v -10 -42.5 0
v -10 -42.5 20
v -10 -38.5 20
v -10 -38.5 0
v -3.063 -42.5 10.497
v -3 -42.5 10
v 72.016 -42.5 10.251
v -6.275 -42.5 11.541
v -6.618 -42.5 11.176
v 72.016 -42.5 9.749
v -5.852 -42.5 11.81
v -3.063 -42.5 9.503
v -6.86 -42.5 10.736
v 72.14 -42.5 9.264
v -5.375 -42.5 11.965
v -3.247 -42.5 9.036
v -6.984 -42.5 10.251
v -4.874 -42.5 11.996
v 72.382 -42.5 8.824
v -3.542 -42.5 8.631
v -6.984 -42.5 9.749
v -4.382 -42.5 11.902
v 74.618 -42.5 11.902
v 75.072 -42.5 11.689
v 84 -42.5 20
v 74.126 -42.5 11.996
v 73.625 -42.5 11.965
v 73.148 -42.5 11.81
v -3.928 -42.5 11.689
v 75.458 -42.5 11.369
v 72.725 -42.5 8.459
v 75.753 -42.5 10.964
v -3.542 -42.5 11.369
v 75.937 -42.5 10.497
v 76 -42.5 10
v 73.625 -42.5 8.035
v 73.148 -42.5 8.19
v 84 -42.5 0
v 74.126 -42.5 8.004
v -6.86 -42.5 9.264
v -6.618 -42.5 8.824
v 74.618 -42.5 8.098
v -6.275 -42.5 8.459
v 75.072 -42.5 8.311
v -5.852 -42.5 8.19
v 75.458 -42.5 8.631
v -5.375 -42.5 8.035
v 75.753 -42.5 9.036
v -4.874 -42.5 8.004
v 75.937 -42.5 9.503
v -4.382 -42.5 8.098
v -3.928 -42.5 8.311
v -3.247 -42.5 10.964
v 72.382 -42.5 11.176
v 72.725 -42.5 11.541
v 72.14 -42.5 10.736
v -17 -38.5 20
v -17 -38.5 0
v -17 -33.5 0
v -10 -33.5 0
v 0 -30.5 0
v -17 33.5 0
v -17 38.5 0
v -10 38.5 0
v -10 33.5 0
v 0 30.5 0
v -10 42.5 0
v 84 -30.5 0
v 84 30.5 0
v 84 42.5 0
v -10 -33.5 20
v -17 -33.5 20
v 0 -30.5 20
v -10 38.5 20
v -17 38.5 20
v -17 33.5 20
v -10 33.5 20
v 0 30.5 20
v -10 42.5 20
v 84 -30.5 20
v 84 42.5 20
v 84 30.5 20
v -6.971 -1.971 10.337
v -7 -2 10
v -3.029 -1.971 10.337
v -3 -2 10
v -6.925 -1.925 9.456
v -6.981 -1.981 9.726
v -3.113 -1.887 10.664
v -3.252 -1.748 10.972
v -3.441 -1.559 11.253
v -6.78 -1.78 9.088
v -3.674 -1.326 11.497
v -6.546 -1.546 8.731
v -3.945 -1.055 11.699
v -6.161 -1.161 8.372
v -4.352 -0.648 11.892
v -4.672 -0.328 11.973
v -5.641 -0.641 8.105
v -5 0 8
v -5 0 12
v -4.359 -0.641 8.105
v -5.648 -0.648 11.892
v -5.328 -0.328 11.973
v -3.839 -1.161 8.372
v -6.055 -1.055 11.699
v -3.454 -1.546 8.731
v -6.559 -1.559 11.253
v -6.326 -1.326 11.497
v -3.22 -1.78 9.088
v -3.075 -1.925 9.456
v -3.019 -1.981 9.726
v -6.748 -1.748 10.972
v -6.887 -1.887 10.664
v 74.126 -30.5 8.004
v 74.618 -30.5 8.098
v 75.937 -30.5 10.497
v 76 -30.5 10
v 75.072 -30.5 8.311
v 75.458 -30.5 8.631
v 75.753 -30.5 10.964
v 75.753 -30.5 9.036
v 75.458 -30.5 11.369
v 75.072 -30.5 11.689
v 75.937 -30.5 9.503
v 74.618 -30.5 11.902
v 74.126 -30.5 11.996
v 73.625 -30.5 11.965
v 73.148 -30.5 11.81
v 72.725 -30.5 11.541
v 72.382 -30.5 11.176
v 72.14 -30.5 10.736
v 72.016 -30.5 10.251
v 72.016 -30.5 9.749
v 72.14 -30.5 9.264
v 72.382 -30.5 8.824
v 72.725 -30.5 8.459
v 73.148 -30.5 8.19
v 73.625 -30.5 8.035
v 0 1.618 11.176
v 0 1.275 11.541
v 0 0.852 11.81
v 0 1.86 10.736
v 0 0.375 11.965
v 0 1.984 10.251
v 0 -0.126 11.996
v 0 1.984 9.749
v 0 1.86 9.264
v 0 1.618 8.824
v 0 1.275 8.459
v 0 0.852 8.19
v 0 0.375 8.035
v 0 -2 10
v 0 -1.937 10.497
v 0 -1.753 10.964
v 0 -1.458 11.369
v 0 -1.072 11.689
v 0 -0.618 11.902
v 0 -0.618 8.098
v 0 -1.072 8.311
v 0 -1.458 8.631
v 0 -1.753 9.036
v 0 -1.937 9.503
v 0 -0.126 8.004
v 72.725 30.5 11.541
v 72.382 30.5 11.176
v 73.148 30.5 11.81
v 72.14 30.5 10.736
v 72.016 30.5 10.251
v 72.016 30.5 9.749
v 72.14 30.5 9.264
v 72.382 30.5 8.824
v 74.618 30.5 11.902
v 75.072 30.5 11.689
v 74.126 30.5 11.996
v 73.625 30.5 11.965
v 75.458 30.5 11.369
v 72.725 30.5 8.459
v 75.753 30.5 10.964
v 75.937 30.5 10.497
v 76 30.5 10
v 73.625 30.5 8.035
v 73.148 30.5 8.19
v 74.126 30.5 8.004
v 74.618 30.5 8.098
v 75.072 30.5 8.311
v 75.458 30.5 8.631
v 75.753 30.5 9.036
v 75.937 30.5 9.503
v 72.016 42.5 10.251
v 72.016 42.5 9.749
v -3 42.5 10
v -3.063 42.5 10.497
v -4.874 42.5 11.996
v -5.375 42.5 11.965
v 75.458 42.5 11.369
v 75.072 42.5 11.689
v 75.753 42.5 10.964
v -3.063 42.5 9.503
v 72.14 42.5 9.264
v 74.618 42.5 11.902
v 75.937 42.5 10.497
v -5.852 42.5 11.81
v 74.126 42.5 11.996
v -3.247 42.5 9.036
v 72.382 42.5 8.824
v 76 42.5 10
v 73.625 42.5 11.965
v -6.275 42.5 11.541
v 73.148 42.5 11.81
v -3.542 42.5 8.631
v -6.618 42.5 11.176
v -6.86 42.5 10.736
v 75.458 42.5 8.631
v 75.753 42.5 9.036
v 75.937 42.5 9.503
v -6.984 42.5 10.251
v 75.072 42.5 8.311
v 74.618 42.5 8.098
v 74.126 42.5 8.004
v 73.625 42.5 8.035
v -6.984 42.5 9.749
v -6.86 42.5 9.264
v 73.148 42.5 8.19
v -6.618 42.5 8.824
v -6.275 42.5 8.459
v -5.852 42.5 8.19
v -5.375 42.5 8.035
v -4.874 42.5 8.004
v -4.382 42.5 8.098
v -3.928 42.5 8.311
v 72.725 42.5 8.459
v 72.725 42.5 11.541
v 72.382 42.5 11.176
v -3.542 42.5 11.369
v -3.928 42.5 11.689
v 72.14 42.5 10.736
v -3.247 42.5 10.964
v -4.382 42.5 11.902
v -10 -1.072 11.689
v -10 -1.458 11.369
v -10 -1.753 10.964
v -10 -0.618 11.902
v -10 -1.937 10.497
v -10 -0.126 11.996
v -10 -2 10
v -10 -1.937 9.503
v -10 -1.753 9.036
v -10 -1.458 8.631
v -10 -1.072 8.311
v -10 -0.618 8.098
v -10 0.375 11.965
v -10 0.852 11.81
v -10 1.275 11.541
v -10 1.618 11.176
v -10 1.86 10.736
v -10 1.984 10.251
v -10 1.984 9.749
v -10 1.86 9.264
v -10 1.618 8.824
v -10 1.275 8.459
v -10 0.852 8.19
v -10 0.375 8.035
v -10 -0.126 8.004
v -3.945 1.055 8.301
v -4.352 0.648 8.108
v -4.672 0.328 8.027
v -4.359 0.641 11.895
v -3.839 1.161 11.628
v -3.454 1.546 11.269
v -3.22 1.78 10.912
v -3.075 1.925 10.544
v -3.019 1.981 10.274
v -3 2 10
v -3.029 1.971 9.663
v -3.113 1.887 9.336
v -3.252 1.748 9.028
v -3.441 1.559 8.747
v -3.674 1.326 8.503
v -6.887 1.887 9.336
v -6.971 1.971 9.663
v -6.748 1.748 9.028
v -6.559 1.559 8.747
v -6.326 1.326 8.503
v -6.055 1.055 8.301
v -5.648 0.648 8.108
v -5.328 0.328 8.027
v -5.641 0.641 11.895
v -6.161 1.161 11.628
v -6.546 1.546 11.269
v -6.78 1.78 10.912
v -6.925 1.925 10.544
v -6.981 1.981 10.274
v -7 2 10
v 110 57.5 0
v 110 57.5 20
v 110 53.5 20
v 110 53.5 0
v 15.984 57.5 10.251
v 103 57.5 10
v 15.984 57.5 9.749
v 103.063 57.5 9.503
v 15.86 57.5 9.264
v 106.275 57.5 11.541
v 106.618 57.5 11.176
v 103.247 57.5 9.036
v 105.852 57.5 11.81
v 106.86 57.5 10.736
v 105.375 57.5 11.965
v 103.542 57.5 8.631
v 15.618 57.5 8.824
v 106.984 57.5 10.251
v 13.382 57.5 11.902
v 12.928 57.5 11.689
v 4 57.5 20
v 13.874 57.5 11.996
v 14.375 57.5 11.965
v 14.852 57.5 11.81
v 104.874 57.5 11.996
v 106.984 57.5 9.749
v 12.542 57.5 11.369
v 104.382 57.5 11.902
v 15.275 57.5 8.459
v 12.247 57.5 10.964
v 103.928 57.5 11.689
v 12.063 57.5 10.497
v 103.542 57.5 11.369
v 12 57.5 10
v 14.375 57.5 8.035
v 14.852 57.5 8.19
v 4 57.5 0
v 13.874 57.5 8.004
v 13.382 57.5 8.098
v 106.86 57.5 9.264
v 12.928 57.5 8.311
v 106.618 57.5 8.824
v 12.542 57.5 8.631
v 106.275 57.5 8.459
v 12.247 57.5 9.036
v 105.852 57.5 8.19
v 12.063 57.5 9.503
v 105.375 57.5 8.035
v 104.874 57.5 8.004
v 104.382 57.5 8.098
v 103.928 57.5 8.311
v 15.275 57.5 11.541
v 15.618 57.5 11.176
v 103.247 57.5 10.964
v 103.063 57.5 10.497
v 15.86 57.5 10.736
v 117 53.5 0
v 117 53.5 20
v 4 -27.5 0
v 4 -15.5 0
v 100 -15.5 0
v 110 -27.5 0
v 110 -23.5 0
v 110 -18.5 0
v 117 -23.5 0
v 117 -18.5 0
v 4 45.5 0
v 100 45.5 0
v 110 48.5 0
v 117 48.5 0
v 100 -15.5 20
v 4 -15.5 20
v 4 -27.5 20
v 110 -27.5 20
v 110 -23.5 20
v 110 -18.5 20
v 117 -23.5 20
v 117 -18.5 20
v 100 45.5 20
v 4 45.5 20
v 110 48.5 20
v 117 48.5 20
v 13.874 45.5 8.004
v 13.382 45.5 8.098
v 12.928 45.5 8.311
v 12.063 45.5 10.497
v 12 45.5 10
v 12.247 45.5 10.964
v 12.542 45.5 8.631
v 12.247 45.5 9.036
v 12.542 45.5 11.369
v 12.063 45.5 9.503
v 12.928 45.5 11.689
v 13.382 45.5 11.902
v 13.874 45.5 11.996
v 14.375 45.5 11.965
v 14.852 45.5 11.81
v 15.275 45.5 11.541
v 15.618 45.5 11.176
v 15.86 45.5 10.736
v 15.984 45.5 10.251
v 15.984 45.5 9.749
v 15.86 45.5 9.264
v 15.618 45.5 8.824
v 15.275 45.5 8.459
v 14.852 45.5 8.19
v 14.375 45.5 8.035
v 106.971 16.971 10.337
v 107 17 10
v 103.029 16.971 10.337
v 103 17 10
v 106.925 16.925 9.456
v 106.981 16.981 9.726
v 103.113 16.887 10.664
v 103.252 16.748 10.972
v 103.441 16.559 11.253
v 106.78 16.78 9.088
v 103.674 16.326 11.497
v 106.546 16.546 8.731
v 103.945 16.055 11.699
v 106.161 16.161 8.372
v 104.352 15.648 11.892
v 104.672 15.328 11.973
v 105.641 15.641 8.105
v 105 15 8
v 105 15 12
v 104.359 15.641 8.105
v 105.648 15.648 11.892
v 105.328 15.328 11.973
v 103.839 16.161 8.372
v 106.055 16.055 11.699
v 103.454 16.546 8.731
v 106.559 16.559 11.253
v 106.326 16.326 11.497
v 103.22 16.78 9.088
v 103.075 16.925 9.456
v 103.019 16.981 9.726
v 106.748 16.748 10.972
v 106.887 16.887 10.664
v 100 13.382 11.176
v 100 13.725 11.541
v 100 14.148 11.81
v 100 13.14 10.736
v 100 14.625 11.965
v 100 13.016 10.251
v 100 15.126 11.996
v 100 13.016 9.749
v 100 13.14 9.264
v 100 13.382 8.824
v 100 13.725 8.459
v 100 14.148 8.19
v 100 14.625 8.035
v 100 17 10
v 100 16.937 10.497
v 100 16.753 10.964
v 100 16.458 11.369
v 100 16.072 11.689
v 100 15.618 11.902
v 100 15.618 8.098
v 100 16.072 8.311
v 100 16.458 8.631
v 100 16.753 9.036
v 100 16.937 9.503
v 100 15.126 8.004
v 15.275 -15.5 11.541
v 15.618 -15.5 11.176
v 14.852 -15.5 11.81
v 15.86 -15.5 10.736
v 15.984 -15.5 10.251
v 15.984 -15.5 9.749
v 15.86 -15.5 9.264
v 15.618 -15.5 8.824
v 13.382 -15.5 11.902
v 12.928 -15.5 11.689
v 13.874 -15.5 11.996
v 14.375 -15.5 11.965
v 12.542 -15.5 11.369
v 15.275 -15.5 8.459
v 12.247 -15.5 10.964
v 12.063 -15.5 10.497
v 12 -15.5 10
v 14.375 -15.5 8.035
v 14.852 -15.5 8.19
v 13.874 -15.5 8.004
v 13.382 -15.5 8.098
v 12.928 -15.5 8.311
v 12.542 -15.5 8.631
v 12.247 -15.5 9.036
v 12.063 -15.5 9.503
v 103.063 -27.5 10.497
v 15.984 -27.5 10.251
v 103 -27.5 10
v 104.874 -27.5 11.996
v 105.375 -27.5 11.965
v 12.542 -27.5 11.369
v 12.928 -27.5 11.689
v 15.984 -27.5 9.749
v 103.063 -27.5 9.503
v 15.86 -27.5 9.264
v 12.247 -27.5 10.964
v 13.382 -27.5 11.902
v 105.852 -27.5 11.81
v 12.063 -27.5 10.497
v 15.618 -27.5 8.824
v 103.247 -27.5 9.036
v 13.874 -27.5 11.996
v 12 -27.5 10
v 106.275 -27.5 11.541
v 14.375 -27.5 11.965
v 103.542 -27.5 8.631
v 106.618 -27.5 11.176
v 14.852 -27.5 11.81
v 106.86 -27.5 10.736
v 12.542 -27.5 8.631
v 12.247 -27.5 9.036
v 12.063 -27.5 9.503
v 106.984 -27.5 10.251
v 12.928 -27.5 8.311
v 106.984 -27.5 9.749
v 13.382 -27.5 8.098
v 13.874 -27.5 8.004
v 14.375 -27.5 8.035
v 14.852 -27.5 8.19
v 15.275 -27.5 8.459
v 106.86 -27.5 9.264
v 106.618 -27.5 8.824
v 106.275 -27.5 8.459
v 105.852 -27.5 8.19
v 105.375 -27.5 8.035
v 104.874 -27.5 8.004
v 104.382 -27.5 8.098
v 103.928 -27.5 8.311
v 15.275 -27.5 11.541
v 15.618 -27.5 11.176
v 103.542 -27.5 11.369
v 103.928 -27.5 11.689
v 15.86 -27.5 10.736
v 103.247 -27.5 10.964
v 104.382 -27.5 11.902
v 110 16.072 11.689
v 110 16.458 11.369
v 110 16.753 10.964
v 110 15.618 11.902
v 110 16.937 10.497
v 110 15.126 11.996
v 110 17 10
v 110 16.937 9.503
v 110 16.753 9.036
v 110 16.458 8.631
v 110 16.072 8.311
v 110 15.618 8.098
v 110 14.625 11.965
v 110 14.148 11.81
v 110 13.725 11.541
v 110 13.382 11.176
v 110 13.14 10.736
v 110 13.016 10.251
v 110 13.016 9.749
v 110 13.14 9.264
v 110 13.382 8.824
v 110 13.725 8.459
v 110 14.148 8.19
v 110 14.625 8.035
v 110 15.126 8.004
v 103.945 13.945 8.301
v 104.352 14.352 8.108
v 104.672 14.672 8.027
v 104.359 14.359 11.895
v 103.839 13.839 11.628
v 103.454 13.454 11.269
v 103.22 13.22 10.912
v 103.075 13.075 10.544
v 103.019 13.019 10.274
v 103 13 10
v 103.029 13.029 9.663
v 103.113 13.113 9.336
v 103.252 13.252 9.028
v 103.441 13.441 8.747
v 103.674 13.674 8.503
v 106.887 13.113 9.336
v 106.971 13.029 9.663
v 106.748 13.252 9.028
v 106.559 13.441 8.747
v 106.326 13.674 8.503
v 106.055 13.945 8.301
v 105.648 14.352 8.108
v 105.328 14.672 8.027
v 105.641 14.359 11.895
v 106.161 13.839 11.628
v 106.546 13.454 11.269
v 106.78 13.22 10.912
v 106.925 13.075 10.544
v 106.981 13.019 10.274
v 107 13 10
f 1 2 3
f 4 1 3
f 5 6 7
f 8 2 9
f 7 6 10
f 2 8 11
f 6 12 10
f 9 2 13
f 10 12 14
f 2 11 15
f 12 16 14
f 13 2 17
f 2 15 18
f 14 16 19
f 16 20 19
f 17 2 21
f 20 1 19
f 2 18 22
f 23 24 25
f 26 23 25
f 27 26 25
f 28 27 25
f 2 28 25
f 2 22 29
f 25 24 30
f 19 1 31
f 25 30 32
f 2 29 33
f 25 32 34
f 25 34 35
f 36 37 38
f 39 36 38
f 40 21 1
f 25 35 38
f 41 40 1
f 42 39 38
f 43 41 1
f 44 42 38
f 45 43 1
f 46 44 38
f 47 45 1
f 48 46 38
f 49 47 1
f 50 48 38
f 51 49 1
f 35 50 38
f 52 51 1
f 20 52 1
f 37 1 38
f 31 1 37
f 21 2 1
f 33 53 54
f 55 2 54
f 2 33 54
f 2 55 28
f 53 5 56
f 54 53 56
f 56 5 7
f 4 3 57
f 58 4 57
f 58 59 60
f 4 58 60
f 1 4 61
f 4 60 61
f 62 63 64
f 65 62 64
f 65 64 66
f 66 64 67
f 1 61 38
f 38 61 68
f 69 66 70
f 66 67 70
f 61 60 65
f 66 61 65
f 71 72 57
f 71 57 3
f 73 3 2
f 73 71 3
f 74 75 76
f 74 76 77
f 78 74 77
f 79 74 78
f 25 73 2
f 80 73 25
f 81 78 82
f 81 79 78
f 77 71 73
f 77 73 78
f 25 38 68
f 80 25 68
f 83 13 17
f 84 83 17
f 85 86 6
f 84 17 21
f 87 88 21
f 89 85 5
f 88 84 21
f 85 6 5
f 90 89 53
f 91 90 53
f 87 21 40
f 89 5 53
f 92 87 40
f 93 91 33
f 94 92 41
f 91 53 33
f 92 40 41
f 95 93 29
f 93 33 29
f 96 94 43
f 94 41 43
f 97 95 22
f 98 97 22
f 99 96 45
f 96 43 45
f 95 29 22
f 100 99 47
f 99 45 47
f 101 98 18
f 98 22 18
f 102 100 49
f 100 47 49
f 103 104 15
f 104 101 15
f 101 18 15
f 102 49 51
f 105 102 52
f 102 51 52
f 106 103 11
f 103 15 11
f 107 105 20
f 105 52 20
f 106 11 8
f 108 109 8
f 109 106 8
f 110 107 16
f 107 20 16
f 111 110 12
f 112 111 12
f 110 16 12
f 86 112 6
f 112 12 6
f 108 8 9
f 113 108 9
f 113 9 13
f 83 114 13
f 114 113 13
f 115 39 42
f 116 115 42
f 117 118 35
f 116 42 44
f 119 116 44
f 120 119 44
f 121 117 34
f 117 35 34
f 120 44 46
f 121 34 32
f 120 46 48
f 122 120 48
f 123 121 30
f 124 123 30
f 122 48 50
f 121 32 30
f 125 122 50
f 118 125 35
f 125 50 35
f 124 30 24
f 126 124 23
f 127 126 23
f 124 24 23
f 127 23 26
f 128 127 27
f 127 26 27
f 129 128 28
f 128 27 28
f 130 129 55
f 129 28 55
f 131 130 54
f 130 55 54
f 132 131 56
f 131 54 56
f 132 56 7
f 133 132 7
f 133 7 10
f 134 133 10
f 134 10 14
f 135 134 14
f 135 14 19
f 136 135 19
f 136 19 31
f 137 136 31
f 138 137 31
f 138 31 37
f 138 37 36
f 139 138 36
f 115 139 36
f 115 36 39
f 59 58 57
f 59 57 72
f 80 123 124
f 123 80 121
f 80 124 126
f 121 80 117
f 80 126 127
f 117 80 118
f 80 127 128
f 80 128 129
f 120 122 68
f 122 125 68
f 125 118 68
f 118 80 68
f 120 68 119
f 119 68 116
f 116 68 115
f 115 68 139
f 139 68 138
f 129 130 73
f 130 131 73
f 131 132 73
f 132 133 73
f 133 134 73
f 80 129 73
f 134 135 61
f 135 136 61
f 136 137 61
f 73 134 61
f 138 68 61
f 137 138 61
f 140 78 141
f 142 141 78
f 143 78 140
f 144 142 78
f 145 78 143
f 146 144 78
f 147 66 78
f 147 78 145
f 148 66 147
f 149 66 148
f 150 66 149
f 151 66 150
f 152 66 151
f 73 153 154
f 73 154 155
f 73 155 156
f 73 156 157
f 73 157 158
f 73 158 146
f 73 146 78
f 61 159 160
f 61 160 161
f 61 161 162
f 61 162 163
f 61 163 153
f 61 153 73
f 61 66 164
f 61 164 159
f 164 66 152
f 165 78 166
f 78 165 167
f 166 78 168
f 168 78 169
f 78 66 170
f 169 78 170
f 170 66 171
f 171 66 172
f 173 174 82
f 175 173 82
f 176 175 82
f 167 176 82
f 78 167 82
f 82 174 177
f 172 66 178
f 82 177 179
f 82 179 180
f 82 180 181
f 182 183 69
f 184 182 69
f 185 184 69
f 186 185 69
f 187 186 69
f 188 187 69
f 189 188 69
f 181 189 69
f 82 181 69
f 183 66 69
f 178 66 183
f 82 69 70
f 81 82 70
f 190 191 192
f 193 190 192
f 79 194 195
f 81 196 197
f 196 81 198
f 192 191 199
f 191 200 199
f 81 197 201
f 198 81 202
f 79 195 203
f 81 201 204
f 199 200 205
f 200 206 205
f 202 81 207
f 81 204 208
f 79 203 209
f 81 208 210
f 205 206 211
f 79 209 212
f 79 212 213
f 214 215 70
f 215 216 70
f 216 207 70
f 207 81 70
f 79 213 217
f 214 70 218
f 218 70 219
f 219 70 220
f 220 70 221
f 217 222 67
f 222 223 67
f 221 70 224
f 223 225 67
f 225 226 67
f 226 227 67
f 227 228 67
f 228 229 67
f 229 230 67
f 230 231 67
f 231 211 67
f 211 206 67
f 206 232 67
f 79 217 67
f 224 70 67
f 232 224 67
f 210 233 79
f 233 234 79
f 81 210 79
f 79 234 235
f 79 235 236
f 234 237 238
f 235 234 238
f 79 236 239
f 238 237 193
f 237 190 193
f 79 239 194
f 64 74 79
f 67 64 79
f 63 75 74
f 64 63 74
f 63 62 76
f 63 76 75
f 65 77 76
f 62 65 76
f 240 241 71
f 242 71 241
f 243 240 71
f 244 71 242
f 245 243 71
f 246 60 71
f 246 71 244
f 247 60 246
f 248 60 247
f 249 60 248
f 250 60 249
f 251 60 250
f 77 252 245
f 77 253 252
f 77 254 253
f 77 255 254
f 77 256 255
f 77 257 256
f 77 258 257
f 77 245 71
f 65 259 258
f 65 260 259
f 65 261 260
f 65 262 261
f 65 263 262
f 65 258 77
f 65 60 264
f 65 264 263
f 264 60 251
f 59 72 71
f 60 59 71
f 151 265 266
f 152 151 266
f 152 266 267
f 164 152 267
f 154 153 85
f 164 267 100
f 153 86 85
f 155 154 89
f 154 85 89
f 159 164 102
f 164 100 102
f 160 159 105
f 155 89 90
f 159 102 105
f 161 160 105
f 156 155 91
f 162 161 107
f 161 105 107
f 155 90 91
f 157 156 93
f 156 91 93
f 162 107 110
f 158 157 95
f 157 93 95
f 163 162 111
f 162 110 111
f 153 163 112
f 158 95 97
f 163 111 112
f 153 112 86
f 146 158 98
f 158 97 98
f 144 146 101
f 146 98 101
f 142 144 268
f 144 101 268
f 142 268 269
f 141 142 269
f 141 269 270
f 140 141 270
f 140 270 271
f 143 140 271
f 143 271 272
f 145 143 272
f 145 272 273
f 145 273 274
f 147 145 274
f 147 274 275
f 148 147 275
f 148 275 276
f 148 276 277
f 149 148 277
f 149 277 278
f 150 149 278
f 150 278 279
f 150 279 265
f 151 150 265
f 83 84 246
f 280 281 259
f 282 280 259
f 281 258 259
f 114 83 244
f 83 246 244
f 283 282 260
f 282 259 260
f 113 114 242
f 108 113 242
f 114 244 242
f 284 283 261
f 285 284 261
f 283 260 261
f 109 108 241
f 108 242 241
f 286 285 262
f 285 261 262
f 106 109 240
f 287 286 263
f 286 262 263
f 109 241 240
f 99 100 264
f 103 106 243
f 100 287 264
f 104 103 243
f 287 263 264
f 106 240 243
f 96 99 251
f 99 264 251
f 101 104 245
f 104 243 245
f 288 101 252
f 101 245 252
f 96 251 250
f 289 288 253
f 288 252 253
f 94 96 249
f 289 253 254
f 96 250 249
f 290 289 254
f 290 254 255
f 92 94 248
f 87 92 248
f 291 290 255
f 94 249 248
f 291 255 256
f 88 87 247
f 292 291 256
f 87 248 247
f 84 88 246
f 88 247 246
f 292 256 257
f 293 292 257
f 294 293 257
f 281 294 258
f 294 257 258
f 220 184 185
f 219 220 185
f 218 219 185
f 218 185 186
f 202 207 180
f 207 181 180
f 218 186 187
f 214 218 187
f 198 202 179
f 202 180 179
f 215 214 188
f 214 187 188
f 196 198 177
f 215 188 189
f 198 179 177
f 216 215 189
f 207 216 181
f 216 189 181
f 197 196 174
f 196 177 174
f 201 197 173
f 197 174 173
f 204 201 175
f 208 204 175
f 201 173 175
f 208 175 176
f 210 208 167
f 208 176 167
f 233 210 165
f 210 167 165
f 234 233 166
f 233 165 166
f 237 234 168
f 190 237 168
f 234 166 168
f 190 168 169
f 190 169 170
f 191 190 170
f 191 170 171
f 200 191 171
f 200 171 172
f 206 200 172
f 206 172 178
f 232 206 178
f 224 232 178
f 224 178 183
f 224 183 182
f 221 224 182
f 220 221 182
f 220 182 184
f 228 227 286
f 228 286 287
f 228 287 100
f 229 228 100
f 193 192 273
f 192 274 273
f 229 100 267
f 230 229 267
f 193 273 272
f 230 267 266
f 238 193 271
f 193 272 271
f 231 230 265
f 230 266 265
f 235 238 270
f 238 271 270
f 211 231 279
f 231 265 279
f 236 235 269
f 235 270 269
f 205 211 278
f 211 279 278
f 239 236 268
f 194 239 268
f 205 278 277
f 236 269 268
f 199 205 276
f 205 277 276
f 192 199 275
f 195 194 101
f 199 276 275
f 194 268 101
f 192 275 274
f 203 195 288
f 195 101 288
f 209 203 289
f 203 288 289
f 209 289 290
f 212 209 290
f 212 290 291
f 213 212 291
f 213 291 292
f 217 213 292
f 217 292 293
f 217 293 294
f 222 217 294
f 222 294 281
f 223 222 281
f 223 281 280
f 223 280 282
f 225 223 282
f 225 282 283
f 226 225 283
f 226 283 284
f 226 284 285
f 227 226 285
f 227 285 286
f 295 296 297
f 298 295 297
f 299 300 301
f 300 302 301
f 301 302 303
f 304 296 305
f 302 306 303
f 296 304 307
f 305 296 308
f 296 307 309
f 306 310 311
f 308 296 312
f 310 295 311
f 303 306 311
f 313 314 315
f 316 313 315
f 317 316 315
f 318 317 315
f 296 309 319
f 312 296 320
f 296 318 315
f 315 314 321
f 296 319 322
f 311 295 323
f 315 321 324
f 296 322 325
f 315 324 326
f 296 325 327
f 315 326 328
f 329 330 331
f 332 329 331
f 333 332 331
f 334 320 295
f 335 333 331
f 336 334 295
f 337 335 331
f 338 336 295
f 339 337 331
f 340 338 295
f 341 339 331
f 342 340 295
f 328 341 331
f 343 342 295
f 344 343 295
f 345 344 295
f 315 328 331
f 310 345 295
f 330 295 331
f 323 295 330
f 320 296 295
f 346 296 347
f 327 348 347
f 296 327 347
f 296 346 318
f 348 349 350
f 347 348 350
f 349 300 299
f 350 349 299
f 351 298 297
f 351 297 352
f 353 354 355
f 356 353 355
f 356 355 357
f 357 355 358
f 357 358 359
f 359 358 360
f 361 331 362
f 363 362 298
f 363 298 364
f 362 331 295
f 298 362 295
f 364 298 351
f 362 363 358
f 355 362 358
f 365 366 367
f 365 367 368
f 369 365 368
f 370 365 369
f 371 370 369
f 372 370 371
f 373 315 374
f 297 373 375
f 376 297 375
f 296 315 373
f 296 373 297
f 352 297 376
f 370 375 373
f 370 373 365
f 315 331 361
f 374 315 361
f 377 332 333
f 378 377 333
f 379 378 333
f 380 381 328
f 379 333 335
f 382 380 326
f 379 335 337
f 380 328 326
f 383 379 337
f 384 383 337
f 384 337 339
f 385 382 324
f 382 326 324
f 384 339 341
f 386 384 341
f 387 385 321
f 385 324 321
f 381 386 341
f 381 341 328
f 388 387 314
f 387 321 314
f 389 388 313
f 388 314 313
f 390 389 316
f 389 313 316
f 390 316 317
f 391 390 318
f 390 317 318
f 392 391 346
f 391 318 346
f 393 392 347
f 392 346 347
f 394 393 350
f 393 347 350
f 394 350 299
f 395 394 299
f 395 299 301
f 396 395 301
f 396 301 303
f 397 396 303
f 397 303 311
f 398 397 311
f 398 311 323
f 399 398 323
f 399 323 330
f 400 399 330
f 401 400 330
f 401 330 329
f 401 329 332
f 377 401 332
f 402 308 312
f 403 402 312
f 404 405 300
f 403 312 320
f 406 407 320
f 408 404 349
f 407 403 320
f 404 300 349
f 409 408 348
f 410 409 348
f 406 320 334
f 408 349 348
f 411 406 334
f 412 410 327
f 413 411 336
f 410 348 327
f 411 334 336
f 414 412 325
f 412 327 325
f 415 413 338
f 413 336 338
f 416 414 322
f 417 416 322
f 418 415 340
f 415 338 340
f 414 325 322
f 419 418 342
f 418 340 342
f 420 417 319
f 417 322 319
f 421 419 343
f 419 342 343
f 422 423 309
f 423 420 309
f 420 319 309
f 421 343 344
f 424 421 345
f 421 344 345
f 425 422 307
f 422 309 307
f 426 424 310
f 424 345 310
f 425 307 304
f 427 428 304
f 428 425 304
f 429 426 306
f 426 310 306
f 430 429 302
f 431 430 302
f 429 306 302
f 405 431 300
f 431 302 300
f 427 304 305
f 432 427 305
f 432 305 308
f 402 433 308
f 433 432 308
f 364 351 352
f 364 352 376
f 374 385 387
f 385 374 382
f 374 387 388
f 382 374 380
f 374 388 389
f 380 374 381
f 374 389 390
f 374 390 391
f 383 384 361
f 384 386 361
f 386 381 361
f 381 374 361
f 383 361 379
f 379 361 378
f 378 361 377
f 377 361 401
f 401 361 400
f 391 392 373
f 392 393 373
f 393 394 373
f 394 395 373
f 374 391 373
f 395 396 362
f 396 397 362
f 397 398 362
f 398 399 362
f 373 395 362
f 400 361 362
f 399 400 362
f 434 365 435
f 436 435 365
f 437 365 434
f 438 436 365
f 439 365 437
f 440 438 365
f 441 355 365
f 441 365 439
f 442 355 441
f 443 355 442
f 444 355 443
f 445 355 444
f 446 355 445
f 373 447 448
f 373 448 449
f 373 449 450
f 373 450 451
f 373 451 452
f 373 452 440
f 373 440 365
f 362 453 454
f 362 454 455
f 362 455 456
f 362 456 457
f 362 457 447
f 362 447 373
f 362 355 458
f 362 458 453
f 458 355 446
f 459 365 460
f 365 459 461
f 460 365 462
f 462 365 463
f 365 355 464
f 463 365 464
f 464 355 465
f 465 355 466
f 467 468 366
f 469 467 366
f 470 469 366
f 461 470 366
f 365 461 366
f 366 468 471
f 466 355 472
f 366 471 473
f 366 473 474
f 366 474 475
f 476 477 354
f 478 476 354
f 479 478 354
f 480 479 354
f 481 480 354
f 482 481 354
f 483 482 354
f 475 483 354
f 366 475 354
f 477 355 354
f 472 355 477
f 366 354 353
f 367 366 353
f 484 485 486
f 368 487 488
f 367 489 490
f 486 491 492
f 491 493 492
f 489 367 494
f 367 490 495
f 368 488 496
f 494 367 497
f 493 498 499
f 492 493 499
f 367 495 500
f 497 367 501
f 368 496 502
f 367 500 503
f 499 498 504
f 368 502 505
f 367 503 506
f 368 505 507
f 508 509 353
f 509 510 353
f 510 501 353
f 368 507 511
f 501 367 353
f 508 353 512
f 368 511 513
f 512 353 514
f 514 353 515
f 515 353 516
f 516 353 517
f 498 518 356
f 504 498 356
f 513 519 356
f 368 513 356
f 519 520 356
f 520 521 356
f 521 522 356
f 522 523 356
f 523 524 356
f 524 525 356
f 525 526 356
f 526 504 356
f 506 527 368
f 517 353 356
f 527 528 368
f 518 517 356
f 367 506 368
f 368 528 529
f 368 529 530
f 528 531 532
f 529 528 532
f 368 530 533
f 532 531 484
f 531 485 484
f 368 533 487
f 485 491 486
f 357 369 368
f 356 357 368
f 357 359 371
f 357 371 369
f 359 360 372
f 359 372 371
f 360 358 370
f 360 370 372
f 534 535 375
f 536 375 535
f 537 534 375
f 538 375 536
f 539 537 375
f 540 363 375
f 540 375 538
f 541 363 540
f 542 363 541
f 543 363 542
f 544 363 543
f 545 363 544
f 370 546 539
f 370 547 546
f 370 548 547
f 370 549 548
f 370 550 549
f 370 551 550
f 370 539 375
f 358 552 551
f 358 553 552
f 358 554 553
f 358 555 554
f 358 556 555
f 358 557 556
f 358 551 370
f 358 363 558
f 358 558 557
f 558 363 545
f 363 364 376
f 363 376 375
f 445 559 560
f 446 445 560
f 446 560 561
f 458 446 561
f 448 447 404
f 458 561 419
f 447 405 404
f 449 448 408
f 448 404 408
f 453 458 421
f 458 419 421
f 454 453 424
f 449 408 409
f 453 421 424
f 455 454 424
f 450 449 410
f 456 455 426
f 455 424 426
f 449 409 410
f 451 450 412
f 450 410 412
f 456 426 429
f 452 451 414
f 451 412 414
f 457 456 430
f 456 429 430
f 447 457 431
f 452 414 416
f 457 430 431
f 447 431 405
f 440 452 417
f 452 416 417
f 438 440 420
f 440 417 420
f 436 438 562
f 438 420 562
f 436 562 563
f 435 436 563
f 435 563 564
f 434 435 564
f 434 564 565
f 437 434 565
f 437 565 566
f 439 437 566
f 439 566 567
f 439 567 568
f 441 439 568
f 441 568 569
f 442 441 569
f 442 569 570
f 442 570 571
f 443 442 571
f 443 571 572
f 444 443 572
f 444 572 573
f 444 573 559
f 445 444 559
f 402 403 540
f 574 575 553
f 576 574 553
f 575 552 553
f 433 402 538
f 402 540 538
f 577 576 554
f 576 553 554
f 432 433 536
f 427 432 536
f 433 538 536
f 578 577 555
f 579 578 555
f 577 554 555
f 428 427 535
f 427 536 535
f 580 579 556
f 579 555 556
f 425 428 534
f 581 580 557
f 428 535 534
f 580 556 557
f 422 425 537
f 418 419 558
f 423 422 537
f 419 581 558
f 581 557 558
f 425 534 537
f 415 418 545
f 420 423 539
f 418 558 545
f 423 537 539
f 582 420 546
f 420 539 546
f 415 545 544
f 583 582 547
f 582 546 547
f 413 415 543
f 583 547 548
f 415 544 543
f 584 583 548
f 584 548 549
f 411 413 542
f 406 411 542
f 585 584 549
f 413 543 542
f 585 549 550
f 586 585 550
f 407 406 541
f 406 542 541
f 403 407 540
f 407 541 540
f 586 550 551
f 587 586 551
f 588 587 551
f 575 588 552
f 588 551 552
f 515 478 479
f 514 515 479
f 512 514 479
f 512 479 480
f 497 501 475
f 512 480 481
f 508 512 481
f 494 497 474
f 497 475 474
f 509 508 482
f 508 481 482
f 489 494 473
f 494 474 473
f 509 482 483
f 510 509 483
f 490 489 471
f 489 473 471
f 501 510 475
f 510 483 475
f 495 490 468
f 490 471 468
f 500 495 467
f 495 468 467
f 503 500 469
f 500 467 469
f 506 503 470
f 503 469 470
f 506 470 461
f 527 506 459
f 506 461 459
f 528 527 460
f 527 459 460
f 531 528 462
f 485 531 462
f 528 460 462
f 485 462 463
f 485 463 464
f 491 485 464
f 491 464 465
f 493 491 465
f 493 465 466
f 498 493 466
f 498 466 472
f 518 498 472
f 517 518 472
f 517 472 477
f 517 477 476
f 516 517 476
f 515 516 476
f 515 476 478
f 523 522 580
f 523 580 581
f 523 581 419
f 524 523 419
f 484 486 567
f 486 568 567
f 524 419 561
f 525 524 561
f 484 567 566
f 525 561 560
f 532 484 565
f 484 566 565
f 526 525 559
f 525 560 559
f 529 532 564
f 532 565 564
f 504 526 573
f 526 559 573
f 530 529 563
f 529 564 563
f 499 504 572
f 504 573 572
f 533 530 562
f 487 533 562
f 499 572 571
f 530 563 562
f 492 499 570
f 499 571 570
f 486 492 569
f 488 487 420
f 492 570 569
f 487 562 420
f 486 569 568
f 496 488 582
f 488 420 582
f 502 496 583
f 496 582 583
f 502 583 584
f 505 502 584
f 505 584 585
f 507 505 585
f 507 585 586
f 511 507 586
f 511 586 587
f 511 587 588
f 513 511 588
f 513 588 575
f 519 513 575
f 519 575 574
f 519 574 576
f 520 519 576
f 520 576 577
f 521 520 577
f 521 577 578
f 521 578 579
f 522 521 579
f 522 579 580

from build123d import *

# Parameters (mm, degrees)
PAD_DEPTH       = 20
SKETCH004_R     = 2
POCKET002_DEPTH = 94.001
SKETCH005_R     = 2
POCKET003_DEPTH = 85.001
PAD001_DEPTH    = 20
SKETCH007_R     = 2
POCKET004_DEPTH = 106.001
SKETCH008_R     = 2
POCKET005_DEPTH = 85.001


with BuildPart() as soporte_agujero_superior_lateral:
    # Sketch → Pad (new body)
    with BuildSketch(Plane.XY):
        Polygon((-10, -42.5), (84, -42.5), (84, -30.5), (0, -30.5), (0, 30.5), (84, 30.5), (84, 42.5), (-10, 42.5), (-10, 38.5), (-17, 38.5), (-17, 33.5), (-10, 33.5), (-10, -33.5), (-17, -33.5), (-17, -38.5), (-10, -38.5), align=None)
    extrude(amount=PAD_DEPTH)

    # Sketch004 → Pocket002 (cut, through all)
    with BuildSketch(Plane(origin=(-10, 0, 0), x_dir=(0, -1, 0), z_dir=(-1, 0, 0))):
        with Locations((0, 10)):
            Circle(SKETCH004_R)
    extrude(amount=-POCKET002_DEPTH, mode=Mode.SUBTRACT)

    # Sketch005 → Pocket003 (cut, through all)
    with BuildSketch(Plane.XZ.offset(42.5)):
        with Locations((-5, 10)):
            Circle(SKETCH005_R)
        with Locations((74, 10)):
            Circle(SKETCH005_R)
    extrude(amount=-POCKET003_DEPTH, mode=Mode.SUBTRACT)


with BuildPart() as soporte_agujero_superior_lateral001:
    # Sketch006 → Pad001 (new body)
    with BuildSketch(Plane(origin=(100, 15, 0), x_dir=(-1, 0, 0), z_dir=(0, 0, 1))):
        Polygon((-10, -42.5), (96, -42.5), (96, -30.5), (0, -30.5), (0, 30.5), (96, 30.5), (96, 42.5), (-10, 42.5), (-10, 38.5), (-17, 38.5), (-17, 33.5), (-10, 33.5), (-10, -33.5), (-17, -33.5), (-17, -38.5), (-10, -38.5), align=None)
    extrude(amount=PAD001_DEPTH)

    # Sketch007 → Pocket004 (cut, through all)
    with BuildSketch(Plane(origin=(110, 15, 0), x_dir=(0, 1, 0), z_dir=(1, 0, 0))):
        with Locations((0, 10)):
            Circle(SKETCH007_R)
    extrude(amount=-POCKET004_DEPTH, mode=Mode.SUBTRACT)

    # Sketch008 → Pocket005 (cut, through all)
    with BuildSketch(Plane(origin=(100, 57.5, 0), x_dir=(-1, 0, 0), z_dir=(0, 1, 0))):
        with Locations((-5, 10)):
            Circle(SKETCH008_R)
        with Locations((86, 10)):
            Circle(SKETCH008_R)
    extrude(amount=-POCKET005_DEPTH, mode=Mode.SUBTRACT)


solid = Compound([soporte_agujero_superior_lateral.part, soporte_agujero_superior_lateral001.part])
